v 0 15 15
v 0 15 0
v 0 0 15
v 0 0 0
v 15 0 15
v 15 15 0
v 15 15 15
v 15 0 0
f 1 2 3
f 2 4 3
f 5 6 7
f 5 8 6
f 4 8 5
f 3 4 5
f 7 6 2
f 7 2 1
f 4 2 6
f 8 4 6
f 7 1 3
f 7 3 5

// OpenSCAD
// CSG file generated from FreeCAD 0.16.6705 (Git)
group() {
 group(){
cube (size = [15.0, 15.0, 15.0], center = false);
}
}
